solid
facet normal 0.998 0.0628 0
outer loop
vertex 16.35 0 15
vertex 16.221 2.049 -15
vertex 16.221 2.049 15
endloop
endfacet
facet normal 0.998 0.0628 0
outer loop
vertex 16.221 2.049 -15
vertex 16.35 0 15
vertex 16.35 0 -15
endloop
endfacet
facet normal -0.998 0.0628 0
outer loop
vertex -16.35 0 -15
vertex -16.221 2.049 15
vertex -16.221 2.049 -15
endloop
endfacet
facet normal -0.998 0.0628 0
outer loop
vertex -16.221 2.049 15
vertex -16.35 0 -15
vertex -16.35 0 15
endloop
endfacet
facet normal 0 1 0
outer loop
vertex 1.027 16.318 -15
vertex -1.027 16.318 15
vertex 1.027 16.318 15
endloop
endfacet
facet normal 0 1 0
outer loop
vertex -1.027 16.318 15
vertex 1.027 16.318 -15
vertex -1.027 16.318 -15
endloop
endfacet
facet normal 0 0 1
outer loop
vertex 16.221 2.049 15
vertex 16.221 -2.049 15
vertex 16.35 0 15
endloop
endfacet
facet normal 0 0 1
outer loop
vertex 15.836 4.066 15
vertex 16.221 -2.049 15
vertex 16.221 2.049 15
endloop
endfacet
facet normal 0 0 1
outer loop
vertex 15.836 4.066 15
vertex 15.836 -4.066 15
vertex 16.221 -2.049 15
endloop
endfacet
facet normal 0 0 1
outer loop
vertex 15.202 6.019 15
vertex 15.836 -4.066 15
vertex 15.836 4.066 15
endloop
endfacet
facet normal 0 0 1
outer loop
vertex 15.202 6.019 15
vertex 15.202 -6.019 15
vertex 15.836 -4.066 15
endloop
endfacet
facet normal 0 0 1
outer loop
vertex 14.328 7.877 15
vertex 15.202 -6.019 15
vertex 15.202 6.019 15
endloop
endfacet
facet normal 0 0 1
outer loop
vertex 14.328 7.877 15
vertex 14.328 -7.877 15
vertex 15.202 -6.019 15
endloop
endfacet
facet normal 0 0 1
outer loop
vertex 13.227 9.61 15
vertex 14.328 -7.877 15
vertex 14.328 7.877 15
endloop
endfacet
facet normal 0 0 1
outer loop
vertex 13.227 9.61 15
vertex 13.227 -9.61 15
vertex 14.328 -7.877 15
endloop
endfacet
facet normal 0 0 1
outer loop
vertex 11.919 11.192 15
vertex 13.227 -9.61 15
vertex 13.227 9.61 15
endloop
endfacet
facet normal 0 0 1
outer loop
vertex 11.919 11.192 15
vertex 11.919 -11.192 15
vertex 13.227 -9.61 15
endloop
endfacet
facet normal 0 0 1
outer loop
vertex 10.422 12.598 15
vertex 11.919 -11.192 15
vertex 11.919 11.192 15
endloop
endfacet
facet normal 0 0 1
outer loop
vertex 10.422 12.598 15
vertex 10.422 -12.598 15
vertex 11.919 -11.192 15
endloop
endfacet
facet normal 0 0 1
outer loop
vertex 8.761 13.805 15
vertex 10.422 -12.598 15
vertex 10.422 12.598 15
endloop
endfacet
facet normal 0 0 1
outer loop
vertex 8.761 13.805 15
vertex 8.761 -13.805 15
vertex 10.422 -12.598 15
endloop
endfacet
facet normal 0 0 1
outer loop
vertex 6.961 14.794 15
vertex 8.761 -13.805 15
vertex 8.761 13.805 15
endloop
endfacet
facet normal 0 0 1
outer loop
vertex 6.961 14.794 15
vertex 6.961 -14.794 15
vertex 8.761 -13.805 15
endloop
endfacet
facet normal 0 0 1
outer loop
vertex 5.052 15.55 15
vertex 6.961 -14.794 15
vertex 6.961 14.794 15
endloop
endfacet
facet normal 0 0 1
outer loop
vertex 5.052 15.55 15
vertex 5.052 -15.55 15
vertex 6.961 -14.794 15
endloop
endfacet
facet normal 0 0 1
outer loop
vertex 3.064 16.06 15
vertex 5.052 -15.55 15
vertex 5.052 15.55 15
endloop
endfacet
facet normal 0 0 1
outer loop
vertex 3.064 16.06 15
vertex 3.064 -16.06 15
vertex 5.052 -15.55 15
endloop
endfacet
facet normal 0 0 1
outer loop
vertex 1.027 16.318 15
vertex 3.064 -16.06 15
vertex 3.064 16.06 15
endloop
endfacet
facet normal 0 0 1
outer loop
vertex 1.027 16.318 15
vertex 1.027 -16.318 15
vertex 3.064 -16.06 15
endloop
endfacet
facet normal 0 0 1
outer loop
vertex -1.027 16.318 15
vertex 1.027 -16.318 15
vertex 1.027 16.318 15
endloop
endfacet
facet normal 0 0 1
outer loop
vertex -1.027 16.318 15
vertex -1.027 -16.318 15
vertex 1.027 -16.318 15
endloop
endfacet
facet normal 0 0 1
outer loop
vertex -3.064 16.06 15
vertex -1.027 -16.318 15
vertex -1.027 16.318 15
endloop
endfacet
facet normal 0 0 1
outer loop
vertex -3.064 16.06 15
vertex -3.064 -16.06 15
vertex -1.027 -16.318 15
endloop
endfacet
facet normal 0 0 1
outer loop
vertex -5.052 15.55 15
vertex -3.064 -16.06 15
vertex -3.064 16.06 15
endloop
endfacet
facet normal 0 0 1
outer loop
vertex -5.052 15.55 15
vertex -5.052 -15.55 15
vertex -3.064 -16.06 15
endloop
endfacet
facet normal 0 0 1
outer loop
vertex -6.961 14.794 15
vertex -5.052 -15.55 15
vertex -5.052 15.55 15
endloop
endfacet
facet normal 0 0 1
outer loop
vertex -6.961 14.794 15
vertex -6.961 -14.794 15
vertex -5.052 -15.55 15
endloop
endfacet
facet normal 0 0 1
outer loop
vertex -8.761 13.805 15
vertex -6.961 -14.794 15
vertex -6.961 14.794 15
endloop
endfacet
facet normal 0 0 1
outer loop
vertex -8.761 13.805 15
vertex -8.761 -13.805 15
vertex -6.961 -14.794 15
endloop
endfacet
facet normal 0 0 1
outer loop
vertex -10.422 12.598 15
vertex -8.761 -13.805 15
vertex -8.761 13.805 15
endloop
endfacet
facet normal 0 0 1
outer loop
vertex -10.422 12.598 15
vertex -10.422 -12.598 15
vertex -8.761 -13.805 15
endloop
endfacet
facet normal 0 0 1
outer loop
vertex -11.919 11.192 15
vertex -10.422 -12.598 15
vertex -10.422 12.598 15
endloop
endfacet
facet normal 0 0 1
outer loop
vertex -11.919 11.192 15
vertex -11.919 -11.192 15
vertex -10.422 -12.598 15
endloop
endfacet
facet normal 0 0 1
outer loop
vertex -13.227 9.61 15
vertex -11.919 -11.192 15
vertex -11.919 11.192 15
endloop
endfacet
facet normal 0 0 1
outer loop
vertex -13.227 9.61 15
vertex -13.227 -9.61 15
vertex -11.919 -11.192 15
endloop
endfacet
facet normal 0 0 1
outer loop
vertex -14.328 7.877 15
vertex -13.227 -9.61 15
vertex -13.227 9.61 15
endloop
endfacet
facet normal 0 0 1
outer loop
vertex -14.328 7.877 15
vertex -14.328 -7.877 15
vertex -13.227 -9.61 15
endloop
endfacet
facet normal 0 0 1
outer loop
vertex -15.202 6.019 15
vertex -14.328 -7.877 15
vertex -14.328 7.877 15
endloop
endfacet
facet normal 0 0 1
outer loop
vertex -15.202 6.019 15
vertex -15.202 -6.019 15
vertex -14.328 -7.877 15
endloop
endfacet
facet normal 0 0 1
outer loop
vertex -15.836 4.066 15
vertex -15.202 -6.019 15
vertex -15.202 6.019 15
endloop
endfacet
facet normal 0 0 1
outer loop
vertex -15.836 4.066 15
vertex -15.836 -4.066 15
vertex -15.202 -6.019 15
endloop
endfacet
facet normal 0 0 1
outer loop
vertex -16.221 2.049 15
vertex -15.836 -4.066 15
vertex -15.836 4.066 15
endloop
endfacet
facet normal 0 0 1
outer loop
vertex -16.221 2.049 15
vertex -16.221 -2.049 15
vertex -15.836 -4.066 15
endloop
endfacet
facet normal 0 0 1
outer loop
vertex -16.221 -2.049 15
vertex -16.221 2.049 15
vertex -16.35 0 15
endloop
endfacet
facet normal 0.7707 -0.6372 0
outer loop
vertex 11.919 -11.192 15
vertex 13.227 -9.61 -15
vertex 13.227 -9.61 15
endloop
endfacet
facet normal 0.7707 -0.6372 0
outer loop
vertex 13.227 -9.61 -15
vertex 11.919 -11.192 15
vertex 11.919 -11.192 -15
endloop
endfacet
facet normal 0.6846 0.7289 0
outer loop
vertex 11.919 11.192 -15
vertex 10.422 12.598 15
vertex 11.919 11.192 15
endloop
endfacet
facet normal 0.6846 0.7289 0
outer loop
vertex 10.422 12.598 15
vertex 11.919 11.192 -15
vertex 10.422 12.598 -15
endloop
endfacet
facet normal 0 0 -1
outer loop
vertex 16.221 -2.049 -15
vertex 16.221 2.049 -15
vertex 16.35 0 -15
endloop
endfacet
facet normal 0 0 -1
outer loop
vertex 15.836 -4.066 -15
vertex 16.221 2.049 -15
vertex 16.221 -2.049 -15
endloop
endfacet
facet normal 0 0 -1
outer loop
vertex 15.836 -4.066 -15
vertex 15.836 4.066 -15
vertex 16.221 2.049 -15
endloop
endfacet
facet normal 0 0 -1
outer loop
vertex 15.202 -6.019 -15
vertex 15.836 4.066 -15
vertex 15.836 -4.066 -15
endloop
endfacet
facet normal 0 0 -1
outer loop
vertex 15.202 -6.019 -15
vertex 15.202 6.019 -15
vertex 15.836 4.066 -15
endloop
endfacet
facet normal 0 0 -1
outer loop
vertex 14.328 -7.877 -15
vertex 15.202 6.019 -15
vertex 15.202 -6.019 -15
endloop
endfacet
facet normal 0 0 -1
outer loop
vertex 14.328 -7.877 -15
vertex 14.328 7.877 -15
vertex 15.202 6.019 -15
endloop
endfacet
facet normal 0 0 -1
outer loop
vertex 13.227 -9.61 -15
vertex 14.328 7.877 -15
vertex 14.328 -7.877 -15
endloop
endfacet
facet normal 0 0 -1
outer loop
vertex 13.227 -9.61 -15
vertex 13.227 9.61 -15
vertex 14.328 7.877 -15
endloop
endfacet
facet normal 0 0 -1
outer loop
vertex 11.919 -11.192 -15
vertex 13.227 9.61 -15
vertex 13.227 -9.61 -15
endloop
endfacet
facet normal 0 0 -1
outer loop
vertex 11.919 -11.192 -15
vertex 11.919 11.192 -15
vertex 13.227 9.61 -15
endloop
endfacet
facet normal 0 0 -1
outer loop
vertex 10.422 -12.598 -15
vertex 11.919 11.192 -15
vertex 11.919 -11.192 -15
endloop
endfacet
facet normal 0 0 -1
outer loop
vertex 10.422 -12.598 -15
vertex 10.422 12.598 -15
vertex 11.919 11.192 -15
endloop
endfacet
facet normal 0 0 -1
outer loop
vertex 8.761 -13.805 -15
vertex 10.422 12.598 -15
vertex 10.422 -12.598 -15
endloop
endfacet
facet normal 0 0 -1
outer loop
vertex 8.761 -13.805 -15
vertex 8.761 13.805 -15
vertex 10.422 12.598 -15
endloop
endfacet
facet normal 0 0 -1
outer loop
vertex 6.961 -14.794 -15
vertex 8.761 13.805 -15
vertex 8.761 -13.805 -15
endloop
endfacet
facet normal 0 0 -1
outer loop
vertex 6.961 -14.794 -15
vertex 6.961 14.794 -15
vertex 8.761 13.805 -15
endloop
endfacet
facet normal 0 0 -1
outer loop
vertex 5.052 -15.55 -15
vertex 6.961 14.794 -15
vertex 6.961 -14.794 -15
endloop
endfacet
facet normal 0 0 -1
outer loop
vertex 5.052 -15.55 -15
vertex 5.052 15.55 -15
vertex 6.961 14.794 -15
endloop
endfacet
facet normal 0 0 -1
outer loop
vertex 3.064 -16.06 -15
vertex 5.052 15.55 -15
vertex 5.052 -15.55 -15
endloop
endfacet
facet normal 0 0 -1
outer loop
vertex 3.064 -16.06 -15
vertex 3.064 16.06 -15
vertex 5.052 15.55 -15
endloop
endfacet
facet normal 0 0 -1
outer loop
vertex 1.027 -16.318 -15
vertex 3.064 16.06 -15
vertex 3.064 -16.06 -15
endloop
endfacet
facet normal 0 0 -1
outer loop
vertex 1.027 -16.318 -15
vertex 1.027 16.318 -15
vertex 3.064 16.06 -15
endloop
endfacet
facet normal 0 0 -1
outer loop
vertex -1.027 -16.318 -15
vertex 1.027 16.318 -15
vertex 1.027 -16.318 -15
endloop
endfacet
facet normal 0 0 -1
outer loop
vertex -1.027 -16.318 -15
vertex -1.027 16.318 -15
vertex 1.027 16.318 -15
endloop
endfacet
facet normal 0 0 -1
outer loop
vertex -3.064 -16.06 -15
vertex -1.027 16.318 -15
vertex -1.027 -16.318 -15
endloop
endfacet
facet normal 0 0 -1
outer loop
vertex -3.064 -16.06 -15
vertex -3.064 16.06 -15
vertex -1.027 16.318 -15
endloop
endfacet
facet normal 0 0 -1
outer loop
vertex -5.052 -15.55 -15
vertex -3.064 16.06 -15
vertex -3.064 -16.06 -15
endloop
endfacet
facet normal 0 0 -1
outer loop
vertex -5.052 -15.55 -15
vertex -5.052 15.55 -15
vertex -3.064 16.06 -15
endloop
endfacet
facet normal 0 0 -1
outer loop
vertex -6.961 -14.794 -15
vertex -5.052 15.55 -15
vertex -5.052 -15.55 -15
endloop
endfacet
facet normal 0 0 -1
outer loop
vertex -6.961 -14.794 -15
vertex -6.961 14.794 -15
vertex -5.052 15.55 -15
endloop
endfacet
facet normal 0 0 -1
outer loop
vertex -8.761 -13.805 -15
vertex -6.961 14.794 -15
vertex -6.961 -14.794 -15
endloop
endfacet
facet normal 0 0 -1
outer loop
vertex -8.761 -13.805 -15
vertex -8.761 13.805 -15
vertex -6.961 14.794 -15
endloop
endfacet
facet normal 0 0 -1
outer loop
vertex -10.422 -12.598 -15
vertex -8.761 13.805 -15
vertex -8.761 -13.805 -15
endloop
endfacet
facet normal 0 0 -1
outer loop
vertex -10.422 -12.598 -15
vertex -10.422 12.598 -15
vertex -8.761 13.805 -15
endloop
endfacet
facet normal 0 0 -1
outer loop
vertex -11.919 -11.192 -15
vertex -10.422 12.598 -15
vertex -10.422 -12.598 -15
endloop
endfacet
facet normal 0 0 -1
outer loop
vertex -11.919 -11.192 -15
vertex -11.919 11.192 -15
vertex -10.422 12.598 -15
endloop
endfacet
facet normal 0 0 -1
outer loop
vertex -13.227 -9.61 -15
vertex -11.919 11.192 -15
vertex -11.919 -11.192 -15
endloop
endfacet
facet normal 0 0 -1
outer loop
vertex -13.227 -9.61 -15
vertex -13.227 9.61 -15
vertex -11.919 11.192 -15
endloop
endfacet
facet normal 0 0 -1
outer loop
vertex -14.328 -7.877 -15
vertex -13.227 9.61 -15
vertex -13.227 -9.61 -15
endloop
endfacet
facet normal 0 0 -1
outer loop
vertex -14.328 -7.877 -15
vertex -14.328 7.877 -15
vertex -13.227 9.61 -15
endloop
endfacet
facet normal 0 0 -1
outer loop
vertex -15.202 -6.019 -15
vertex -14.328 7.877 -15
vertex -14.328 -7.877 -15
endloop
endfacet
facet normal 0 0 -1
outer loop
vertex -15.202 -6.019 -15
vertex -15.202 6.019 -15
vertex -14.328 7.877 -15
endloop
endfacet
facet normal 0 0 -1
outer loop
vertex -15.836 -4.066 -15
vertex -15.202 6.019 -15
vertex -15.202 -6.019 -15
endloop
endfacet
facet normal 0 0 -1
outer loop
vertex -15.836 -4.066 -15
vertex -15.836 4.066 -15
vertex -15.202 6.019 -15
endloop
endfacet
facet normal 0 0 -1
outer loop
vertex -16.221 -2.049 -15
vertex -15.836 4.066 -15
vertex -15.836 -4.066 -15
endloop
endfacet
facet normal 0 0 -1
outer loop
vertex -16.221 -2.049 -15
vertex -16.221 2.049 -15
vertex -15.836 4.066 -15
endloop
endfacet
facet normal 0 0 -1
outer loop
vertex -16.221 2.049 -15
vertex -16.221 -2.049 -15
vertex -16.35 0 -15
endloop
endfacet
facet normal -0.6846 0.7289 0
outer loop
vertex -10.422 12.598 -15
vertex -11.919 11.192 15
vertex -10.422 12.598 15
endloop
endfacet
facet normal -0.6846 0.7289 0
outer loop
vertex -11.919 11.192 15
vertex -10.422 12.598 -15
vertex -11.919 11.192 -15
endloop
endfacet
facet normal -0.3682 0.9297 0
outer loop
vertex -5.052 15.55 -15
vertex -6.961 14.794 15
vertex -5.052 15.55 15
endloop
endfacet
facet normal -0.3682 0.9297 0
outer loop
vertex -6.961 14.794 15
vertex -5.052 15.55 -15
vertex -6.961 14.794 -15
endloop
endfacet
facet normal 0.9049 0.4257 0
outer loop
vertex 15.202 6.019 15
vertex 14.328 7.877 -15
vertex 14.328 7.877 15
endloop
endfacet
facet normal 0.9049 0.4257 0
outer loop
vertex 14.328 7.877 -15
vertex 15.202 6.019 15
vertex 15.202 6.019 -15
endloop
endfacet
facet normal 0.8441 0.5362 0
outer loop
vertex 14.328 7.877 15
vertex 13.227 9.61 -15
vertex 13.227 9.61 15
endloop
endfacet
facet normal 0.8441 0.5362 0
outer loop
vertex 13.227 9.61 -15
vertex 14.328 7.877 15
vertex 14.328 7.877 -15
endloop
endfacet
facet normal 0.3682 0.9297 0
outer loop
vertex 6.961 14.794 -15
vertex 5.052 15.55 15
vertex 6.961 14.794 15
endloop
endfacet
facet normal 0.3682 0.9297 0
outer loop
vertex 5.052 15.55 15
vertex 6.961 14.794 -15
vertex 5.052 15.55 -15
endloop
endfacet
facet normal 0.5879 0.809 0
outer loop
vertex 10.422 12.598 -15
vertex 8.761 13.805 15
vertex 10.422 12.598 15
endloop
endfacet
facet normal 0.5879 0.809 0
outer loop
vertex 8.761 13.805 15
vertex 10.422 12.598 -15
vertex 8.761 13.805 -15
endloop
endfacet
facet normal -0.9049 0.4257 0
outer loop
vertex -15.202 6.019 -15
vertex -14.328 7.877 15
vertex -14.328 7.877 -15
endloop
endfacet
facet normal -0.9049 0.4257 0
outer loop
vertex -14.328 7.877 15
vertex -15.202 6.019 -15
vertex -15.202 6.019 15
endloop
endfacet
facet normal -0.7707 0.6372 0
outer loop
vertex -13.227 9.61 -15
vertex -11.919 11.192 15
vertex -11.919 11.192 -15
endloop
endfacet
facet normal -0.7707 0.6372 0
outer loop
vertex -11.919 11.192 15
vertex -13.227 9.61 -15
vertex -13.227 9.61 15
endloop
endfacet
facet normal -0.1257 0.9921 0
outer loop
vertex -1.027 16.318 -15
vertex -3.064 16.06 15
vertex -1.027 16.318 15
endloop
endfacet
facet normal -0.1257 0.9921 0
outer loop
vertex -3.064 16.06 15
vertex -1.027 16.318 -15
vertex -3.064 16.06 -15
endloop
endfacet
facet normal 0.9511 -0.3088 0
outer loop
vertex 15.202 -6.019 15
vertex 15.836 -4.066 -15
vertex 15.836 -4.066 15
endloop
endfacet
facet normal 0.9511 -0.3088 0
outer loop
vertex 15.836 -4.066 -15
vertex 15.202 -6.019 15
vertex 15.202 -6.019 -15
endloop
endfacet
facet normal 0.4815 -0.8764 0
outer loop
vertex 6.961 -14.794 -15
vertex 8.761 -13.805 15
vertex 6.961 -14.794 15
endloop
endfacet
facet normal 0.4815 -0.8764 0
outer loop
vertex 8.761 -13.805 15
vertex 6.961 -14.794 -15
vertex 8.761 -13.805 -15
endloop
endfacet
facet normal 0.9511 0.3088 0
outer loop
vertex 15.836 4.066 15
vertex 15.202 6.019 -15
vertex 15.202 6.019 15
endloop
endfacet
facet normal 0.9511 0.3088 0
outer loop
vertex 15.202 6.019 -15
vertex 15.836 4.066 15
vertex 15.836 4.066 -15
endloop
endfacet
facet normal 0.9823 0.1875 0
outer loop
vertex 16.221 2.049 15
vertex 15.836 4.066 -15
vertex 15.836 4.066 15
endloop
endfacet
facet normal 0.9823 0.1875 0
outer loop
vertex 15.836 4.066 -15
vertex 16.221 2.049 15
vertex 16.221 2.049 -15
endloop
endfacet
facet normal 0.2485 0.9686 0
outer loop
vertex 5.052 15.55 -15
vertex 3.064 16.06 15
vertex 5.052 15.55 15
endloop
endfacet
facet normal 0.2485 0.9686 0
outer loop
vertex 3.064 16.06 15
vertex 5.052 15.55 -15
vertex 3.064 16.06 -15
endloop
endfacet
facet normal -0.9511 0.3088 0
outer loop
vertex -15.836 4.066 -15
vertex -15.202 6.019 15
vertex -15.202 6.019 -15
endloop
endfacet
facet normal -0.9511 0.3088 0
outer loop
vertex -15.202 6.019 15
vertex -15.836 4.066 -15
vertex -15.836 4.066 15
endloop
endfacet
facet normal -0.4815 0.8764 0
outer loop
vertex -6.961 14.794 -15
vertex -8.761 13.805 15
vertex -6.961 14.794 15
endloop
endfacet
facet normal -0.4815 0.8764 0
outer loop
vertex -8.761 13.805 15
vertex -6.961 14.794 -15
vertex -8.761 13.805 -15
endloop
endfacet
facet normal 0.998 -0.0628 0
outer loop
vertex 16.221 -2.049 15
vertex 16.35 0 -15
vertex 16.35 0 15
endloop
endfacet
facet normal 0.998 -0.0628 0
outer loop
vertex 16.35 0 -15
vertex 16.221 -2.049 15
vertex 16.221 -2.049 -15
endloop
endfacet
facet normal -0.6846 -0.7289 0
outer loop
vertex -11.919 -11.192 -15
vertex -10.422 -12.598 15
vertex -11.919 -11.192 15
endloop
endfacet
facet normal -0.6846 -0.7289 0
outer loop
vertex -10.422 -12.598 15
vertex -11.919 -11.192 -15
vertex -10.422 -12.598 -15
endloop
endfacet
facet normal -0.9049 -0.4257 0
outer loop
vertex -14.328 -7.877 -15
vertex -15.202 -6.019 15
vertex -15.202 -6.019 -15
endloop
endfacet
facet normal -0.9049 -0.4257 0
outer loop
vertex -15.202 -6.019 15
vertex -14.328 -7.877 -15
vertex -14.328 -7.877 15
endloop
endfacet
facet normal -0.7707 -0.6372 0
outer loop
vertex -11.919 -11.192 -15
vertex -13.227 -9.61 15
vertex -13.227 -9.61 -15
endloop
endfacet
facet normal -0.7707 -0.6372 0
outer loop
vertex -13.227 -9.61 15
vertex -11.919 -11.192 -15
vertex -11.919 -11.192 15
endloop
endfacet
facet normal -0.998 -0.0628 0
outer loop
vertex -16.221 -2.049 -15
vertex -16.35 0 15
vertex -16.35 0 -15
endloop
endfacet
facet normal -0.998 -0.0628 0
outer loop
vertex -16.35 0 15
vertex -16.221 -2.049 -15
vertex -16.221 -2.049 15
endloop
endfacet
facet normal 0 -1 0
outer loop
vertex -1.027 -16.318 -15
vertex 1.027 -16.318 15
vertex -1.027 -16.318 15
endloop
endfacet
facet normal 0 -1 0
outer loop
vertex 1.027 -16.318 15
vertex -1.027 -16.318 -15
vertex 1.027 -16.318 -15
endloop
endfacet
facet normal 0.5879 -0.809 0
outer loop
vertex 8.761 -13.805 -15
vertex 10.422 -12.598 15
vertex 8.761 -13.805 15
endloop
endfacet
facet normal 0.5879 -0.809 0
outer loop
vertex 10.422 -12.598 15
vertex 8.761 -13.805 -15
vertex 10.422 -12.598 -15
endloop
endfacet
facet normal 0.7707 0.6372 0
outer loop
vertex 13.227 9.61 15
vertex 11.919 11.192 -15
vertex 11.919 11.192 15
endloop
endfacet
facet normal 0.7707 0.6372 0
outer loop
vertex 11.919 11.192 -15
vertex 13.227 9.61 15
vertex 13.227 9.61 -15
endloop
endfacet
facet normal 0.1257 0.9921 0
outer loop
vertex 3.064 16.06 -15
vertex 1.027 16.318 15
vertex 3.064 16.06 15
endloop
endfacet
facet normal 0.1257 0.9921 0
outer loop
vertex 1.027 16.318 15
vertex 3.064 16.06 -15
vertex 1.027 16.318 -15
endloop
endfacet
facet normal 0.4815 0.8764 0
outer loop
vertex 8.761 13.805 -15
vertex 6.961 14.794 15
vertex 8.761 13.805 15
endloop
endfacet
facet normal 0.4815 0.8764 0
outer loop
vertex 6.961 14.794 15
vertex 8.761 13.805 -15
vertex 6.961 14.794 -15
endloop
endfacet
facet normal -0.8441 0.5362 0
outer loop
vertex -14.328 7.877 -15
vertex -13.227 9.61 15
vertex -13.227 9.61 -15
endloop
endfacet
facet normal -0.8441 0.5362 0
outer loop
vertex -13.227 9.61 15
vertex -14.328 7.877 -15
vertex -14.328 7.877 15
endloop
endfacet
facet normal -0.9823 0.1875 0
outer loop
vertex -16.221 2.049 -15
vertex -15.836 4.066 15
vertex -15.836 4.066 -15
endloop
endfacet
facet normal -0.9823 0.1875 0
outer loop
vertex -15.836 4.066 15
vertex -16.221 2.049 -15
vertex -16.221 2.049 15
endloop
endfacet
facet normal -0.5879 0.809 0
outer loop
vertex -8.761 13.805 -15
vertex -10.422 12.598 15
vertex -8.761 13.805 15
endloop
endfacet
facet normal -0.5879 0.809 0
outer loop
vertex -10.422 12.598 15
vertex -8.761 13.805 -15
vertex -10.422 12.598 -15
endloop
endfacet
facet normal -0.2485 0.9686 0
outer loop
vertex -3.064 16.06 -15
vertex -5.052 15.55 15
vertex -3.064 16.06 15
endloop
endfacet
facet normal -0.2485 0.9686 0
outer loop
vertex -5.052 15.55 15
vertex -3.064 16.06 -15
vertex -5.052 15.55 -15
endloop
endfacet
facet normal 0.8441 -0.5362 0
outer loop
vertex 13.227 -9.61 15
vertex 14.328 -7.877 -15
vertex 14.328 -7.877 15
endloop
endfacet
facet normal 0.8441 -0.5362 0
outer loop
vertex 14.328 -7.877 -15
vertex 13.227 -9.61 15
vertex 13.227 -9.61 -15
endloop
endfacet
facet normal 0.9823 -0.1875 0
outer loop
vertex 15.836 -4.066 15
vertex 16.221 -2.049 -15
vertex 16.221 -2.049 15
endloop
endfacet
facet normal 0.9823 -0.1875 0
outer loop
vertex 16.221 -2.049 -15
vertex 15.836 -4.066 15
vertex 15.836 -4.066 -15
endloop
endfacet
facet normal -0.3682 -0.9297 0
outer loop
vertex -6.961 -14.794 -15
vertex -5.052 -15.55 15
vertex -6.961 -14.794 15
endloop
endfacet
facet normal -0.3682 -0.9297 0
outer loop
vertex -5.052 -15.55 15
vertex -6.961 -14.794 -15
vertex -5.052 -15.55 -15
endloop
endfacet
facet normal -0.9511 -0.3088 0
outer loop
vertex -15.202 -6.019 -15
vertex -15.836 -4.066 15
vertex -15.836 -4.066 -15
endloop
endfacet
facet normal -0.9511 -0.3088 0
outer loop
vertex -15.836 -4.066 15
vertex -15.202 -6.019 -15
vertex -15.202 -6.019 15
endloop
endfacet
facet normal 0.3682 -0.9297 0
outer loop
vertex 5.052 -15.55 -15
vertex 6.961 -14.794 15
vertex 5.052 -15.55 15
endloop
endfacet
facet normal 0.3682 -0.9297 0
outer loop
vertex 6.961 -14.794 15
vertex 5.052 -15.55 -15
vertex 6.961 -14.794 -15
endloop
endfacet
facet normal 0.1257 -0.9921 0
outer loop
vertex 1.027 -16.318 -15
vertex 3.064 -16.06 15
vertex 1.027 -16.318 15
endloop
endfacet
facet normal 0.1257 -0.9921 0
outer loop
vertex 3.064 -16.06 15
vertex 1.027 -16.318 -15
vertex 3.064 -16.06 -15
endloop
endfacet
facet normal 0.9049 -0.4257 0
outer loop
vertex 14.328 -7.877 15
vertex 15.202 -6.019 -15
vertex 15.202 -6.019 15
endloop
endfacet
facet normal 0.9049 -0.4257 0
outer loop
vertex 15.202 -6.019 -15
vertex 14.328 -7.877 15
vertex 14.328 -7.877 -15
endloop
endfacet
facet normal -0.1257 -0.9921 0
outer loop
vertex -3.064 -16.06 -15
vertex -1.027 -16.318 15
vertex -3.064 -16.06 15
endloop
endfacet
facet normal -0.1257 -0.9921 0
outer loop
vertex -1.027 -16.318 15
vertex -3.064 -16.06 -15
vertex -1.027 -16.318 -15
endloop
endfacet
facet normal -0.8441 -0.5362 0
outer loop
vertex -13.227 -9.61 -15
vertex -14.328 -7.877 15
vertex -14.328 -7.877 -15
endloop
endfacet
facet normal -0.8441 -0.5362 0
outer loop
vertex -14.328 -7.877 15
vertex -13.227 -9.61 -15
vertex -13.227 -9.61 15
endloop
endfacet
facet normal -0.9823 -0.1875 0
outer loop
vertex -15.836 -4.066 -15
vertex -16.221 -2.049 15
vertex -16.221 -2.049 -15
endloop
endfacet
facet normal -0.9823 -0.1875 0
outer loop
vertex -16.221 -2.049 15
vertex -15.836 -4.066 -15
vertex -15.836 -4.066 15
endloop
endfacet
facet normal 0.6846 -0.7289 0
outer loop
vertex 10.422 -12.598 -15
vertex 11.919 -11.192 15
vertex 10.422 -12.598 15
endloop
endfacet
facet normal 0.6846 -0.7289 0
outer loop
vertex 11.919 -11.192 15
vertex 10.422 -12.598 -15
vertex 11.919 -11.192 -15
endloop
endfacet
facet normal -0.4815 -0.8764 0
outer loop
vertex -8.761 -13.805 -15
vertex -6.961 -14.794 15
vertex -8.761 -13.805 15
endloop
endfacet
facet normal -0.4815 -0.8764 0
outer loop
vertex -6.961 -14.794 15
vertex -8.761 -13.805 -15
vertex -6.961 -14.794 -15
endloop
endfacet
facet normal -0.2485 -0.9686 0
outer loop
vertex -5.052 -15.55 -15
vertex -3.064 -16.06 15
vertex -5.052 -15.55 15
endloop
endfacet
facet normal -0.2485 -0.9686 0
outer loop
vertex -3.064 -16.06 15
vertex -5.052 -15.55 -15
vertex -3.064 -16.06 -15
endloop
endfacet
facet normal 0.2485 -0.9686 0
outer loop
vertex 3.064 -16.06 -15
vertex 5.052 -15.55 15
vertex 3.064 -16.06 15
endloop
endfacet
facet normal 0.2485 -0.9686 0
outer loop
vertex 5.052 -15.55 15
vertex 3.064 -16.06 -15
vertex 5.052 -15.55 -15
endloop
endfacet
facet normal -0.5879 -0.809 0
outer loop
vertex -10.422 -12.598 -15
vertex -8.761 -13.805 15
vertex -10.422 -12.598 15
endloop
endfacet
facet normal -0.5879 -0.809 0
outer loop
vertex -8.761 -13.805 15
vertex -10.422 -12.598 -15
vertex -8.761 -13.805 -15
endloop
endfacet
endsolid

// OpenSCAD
$fn = 50;


difference() {
	union() {
		translate(v = [0, 0, -15.0000000000]) {
			cylinder(h = 30, r = 16.3500000000);
		}
	}
	union() {
		translate(v = [0, 0, -100.0000000000]) {
			cylinder(h = 200, r = 0);
		}
	}
}
